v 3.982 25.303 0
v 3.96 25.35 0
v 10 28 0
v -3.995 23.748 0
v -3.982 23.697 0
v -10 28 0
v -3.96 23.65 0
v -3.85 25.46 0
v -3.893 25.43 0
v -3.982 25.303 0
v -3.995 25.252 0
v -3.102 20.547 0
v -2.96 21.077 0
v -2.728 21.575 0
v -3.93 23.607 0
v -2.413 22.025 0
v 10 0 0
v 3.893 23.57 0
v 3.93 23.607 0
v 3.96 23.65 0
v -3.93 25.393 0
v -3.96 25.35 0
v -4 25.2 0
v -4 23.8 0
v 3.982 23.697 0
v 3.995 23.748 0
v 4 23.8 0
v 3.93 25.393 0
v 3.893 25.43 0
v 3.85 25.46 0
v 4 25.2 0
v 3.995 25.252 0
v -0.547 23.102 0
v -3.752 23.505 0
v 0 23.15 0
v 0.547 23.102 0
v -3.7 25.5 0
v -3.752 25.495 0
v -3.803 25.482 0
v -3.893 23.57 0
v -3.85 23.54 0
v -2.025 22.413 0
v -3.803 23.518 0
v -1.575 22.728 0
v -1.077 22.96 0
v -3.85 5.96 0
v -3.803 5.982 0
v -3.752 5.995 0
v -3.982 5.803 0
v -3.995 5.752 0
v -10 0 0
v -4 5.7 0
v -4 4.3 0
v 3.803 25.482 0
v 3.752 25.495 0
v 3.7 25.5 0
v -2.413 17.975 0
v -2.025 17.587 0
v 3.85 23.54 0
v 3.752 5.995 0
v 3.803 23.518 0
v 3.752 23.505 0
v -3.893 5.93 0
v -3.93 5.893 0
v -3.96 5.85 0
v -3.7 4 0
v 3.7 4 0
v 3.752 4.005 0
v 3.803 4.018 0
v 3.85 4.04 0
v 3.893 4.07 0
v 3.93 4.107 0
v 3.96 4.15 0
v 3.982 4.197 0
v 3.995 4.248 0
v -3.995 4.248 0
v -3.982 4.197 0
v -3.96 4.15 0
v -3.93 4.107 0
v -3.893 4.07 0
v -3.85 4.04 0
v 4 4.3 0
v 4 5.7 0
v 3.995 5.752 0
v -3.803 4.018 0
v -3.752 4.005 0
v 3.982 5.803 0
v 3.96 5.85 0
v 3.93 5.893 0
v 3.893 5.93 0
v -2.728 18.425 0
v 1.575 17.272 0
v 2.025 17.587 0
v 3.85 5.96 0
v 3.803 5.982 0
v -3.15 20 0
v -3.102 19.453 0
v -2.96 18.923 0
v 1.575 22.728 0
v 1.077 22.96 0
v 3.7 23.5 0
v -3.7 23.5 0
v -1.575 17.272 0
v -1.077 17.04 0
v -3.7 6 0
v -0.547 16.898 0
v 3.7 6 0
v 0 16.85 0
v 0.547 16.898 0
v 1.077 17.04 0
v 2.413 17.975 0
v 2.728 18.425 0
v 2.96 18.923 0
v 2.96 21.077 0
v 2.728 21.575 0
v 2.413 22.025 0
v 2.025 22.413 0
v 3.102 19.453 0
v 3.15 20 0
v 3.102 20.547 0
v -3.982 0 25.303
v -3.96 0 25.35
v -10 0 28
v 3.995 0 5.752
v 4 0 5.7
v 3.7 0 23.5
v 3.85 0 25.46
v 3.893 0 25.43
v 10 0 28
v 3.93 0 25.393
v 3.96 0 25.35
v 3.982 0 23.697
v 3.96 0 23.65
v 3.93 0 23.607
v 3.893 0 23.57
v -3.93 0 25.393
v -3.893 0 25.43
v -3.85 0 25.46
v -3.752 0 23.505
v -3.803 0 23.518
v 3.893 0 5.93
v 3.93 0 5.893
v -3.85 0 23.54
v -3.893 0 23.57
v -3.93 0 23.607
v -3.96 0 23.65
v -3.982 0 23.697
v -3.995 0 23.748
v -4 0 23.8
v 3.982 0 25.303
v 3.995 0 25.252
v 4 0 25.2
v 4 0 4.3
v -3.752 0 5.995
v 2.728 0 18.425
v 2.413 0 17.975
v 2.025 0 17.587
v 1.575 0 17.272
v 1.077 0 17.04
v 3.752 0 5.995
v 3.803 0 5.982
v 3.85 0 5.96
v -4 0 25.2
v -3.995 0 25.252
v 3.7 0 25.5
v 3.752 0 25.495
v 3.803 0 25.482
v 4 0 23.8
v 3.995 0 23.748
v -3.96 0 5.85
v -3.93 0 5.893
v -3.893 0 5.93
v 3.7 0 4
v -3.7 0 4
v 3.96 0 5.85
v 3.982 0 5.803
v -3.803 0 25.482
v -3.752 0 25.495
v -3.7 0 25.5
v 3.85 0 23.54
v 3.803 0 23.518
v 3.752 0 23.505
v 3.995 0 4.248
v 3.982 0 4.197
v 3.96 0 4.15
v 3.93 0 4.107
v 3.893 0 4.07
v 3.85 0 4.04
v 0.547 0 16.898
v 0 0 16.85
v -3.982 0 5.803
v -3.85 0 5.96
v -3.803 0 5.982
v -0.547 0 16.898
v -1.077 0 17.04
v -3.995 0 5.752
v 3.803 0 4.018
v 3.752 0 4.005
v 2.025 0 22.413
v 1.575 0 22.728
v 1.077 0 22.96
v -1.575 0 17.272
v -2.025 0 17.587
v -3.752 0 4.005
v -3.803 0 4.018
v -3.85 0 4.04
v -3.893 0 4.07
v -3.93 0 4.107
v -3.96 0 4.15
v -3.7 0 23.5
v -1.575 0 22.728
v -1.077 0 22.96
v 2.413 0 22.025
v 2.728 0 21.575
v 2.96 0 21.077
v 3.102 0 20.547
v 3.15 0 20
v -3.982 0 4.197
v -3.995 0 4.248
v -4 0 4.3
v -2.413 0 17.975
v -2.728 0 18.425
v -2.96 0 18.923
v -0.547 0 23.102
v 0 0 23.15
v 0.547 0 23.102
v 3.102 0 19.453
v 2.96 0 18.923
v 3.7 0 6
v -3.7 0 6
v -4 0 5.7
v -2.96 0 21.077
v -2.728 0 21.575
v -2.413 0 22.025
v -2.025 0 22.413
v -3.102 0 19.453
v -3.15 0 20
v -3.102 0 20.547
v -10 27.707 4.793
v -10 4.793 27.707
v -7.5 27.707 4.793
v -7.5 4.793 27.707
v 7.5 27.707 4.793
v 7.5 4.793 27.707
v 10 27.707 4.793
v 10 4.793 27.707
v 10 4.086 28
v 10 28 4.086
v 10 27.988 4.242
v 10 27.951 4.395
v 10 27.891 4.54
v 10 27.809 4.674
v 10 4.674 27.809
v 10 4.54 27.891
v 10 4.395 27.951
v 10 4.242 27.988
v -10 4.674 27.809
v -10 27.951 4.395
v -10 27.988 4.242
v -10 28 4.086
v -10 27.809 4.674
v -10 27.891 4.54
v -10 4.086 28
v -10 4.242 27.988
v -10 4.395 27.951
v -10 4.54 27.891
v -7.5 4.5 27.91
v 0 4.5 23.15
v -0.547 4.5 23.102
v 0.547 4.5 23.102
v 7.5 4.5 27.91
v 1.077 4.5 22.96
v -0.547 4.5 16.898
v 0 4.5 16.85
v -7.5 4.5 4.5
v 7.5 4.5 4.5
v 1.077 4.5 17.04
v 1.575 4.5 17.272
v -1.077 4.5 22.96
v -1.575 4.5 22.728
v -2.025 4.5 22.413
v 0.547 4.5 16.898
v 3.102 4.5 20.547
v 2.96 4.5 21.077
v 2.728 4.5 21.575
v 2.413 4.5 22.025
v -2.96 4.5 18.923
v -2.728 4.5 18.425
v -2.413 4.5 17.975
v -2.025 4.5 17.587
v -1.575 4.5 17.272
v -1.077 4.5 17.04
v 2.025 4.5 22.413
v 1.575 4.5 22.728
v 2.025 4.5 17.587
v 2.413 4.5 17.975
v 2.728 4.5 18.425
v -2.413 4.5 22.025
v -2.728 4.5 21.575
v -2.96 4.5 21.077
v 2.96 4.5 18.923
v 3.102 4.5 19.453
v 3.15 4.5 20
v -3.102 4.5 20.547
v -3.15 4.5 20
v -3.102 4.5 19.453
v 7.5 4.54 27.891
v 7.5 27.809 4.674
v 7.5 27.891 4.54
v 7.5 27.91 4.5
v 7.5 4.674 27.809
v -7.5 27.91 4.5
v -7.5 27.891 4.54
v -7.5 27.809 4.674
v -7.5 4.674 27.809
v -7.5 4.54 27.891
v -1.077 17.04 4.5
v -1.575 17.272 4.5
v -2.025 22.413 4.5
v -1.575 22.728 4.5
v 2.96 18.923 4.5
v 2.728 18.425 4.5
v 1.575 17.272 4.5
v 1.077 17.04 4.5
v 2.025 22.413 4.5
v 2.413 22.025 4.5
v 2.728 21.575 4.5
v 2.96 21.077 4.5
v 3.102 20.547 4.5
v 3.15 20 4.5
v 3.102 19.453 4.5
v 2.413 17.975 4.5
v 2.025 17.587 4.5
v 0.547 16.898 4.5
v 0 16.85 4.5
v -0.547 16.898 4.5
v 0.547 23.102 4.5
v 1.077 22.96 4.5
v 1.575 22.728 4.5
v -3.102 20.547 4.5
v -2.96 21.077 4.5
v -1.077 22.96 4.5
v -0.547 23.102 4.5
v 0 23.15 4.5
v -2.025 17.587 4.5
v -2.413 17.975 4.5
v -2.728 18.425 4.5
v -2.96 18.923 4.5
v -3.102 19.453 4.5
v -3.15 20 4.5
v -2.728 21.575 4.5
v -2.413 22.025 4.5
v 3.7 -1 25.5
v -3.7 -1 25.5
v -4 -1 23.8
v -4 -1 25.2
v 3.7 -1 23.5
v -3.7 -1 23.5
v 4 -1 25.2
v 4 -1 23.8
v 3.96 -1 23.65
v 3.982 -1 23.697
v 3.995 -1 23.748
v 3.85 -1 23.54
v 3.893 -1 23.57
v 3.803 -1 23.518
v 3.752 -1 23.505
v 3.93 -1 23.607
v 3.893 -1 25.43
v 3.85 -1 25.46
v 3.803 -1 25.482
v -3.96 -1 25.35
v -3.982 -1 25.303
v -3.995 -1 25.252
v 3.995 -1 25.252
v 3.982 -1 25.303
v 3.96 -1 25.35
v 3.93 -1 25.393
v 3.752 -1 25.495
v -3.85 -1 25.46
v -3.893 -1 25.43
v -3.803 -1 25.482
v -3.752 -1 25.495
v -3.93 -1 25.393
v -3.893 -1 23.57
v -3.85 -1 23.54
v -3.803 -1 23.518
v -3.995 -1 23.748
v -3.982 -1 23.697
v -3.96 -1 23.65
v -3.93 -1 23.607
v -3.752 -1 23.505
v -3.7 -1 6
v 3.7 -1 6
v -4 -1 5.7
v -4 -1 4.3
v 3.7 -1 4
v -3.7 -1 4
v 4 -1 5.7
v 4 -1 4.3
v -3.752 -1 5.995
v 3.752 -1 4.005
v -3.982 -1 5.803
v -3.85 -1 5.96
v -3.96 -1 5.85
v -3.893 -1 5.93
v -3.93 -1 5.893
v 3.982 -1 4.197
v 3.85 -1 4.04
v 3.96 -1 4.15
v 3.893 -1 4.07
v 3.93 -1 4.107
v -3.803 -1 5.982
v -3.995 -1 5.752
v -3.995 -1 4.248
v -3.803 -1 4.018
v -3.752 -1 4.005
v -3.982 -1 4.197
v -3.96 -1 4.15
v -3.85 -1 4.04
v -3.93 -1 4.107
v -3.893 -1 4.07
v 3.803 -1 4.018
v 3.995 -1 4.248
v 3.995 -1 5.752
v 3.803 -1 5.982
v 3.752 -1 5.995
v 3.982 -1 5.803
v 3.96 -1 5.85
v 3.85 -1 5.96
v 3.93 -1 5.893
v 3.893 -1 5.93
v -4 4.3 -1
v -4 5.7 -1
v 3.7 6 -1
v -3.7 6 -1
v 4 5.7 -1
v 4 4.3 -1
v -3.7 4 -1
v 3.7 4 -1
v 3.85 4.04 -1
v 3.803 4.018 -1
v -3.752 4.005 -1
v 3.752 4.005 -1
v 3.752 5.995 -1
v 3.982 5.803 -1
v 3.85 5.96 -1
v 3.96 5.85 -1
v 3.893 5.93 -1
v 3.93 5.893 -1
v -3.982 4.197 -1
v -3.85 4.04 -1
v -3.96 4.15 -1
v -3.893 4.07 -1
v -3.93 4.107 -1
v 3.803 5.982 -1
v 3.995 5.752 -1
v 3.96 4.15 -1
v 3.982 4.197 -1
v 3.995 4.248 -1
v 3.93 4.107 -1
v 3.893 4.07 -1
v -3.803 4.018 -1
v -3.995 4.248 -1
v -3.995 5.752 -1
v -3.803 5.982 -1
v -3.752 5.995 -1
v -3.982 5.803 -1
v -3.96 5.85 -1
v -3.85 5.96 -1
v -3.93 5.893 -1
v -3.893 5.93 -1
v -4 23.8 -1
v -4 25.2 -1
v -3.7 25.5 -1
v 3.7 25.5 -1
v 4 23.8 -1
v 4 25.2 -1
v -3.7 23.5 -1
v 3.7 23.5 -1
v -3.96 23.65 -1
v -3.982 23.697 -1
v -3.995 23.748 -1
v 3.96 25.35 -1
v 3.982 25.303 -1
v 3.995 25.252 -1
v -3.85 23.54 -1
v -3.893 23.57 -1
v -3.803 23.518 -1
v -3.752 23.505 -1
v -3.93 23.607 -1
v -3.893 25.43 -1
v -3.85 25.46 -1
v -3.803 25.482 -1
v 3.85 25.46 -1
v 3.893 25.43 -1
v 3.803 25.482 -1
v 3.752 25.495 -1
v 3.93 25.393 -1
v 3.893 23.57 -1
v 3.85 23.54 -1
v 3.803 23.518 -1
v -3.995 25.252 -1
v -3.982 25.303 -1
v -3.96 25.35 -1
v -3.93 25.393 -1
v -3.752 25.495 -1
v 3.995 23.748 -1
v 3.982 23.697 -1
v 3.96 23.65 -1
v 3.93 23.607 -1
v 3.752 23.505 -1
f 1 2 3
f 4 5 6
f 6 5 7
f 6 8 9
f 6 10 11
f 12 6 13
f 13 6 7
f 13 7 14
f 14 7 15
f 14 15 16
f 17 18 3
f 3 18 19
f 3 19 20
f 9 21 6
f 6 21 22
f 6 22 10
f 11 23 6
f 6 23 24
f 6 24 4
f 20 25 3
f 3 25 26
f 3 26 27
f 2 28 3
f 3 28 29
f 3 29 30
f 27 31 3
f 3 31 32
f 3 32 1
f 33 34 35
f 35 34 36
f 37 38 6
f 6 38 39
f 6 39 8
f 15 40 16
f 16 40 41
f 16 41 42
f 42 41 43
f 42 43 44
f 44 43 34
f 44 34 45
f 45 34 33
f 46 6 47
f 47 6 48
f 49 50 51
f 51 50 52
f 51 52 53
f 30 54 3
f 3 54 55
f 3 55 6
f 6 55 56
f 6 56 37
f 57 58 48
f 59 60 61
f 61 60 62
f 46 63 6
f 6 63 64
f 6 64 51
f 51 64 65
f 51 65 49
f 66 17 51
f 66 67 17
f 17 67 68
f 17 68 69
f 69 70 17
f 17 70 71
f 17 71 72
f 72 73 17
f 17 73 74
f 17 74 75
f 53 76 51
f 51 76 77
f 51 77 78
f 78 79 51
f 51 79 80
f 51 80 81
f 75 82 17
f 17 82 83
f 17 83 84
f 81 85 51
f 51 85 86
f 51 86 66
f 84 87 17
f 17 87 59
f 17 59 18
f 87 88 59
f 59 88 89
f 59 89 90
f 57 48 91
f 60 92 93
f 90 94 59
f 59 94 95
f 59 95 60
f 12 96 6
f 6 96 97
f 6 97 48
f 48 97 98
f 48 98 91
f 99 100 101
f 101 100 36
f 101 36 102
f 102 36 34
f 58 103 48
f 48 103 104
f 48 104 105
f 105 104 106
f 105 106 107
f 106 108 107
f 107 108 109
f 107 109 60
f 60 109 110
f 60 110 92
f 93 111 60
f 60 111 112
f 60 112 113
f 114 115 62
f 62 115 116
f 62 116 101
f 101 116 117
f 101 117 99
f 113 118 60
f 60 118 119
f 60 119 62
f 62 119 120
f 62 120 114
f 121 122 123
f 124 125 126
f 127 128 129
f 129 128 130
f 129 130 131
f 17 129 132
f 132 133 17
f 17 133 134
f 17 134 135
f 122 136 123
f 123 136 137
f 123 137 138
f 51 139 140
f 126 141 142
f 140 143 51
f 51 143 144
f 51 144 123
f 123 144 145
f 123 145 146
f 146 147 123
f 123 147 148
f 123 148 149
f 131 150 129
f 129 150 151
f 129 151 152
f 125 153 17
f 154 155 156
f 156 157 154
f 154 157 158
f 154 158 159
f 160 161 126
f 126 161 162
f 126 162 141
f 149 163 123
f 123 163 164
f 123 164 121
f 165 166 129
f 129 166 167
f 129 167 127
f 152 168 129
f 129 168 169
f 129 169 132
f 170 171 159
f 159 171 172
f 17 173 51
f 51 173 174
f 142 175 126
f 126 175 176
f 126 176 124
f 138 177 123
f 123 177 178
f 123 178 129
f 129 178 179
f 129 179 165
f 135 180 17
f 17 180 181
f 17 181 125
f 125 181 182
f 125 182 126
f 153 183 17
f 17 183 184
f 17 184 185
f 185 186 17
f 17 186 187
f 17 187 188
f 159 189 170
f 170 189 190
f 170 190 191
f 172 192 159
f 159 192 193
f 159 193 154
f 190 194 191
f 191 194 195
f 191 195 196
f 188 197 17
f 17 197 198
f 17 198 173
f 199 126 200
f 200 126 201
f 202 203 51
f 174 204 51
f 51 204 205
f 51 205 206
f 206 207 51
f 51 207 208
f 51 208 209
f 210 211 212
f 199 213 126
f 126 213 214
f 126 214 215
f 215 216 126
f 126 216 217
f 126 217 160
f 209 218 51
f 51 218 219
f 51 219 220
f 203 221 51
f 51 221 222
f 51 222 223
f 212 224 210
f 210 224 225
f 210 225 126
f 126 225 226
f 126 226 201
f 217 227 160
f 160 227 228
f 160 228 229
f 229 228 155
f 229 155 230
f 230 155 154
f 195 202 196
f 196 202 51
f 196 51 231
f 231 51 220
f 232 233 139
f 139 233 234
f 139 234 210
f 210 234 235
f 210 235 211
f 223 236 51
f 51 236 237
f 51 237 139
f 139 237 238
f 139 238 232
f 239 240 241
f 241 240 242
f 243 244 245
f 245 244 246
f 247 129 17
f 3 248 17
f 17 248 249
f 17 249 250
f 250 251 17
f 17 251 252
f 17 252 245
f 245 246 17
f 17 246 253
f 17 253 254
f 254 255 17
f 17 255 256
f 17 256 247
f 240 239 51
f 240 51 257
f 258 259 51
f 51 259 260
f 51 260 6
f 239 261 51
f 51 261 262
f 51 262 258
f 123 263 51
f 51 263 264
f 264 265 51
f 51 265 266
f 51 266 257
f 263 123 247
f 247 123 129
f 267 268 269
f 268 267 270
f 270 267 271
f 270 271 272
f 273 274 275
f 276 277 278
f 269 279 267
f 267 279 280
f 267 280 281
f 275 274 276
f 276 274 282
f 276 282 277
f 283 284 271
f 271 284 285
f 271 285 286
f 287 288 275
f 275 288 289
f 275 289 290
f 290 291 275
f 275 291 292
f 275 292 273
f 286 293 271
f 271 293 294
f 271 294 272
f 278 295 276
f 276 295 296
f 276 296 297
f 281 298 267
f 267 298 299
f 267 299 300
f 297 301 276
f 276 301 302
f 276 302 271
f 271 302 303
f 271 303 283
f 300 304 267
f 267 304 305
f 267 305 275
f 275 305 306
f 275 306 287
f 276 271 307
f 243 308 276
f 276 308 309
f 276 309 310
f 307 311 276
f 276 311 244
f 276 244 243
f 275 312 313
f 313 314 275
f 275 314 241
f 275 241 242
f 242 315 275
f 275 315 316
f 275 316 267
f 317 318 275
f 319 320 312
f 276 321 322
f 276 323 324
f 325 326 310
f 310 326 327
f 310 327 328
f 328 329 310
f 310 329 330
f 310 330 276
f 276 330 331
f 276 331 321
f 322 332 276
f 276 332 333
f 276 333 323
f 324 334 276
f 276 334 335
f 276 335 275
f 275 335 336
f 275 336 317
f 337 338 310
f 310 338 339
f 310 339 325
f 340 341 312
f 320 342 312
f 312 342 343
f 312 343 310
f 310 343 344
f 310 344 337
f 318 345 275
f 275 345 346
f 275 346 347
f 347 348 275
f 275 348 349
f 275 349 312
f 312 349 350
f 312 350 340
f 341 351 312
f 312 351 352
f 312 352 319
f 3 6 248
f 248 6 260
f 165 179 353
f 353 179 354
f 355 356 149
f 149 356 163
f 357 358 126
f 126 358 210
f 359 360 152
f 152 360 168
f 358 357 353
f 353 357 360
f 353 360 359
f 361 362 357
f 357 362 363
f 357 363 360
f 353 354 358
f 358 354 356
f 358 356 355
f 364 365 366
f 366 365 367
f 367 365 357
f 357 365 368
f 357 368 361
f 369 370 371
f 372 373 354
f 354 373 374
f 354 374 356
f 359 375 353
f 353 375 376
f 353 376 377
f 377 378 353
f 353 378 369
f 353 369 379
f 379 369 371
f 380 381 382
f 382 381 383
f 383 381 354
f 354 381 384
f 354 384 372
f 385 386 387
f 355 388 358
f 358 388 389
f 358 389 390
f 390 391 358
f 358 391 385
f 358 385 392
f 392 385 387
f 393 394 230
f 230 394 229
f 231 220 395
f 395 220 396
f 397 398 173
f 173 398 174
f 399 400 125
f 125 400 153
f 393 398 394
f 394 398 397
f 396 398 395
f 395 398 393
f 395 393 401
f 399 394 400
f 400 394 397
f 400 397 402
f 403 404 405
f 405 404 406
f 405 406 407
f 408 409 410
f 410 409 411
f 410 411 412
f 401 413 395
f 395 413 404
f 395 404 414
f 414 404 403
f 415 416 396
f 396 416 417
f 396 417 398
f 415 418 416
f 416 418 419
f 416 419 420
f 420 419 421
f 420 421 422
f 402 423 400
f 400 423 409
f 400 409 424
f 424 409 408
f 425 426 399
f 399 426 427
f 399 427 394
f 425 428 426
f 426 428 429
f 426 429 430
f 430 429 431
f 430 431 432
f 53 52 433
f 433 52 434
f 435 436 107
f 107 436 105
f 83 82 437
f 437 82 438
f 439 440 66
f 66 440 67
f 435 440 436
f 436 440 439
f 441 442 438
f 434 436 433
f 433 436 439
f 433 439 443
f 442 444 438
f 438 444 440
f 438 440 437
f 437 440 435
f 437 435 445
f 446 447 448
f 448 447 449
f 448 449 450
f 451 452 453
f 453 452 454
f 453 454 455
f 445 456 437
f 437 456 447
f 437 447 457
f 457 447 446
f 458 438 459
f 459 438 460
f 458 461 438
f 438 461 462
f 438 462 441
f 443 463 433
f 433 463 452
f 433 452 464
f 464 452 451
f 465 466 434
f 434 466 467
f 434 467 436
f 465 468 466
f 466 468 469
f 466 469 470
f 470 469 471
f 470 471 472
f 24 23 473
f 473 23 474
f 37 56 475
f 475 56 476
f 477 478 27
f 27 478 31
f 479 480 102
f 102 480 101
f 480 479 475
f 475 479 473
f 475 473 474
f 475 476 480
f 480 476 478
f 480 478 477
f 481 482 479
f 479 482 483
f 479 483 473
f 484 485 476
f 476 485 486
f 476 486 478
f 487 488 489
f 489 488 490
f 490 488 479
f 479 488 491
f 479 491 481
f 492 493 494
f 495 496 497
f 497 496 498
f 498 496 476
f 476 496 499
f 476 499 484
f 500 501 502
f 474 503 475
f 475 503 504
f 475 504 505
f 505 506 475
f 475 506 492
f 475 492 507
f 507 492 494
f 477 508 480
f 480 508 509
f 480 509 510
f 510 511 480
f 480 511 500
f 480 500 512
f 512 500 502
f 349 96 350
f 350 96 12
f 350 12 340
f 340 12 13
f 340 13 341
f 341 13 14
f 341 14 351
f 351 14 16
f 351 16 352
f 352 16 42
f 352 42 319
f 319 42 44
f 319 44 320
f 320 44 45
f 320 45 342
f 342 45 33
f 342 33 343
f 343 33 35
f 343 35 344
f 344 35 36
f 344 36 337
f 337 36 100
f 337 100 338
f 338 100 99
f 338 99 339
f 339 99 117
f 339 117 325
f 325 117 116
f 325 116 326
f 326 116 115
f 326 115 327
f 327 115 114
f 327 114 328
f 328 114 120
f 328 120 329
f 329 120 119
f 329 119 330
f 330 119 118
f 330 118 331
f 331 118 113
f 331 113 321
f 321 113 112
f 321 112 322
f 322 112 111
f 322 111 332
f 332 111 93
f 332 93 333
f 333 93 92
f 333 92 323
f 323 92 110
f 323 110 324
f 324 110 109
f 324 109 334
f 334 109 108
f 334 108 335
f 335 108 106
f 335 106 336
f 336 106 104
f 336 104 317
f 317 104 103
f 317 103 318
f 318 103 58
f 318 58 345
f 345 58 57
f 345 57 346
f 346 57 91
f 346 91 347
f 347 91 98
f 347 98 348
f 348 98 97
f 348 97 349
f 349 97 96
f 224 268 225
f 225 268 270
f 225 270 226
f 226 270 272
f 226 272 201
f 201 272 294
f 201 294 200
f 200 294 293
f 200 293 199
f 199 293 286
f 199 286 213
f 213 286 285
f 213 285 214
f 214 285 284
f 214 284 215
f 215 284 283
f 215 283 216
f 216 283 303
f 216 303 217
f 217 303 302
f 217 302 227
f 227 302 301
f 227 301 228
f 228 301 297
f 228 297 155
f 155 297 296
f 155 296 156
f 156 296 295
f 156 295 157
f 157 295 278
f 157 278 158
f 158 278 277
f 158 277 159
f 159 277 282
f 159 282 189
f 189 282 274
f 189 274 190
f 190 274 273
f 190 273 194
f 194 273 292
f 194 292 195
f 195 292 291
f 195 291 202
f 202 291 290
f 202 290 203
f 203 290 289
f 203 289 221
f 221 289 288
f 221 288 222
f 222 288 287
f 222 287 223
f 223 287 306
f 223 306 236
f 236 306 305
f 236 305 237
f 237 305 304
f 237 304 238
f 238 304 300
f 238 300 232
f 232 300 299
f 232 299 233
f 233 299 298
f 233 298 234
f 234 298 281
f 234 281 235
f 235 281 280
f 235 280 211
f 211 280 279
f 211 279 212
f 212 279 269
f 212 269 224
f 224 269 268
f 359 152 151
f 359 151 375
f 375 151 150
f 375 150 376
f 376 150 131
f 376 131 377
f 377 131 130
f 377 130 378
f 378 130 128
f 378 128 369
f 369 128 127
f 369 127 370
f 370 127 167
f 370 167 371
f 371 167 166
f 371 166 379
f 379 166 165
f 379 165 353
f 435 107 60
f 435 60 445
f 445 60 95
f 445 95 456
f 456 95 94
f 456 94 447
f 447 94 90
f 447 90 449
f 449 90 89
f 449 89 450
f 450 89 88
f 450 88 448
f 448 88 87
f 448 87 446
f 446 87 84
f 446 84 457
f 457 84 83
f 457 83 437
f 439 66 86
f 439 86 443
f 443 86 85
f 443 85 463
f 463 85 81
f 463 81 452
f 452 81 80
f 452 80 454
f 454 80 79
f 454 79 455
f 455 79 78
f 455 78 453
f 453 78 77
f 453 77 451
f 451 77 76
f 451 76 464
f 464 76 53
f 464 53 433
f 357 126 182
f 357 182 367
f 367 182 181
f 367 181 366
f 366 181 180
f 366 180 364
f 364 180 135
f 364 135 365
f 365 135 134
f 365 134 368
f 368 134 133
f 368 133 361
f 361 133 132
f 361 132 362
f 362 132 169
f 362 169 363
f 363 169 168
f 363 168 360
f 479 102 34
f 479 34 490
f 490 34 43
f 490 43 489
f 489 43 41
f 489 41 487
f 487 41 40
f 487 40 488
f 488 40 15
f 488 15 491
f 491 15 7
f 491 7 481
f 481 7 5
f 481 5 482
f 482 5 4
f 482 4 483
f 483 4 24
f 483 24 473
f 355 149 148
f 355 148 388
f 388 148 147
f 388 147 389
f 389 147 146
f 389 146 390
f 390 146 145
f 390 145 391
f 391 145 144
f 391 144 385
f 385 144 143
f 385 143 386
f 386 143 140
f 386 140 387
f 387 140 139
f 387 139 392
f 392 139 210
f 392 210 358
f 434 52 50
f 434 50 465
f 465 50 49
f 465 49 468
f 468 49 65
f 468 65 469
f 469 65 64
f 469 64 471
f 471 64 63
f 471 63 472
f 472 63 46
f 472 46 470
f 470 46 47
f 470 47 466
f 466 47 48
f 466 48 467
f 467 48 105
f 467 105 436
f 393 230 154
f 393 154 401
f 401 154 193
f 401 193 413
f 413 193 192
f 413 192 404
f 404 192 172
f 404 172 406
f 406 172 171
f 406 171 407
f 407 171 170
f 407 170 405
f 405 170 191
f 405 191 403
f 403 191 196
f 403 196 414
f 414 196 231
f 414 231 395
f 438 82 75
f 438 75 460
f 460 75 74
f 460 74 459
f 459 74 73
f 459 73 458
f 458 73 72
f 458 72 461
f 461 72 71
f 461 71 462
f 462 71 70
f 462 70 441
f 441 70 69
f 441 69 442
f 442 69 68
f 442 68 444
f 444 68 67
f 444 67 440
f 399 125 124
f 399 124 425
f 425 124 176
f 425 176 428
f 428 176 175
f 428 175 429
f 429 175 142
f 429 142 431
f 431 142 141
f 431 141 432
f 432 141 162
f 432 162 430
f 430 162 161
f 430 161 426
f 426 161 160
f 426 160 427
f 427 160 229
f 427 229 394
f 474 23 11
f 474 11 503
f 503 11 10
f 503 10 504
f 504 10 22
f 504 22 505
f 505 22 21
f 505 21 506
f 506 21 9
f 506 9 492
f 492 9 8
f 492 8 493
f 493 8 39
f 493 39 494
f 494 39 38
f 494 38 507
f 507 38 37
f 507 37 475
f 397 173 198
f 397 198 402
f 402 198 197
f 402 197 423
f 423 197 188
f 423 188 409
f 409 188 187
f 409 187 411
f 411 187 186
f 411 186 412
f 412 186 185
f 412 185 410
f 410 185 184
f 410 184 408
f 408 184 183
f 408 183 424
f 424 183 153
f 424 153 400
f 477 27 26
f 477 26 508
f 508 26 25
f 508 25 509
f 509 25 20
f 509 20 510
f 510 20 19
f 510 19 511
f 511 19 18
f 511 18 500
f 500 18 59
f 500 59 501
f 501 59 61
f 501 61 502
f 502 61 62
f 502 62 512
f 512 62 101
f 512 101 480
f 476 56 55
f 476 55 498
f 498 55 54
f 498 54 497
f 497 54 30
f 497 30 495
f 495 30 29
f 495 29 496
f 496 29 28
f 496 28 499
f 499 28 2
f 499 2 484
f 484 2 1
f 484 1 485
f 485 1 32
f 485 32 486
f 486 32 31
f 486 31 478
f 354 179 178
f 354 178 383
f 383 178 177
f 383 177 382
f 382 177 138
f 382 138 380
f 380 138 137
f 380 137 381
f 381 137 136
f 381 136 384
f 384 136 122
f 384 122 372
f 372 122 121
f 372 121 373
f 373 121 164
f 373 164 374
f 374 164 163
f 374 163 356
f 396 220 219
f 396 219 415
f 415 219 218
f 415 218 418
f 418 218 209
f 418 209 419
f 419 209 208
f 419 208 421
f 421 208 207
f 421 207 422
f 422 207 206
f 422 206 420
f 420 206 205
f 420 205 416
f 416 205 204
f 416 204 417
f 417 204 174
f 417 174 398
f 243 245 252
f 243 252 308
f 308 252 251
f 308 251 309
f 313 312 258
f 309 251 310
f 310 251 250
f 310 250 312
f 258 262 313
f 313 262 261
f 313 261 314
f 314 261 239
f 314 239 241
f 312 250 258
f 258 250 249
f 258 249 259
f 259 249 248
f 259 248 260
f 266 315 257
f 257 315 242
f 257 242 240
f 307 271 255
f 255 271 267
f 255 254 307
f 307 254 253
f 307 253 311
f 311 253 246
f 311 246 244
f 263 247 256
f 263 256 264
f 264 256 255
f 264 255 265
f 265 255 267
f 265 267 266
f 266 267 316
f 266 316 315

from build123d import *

# Parameters (mm, degrees)
BOSS_EXTRUDE1_DEPTH            = 20
SKETCH2_W                      = 20
SKETCH2_H                      = 23.5
BOSS_EXTRUDE2_DEPTH            = 4.5
CUT_EXTRUDE1_DEPTH             = 15
SKETCH4_W                      = 20
SKETCH4_H                      = 28
BOSS_EXTRUDE3_DEPTH            = 4.5
SKETCH5_W                      = 8
SKETCH5_H                      = 2
BOSS_EXTRUDE4_DEPTH            = 1
SKETCH6_W                      = 8
SKETCH6_H                      = 2
BOSS_EXTRUDE5_DEPTH            = 1
SKETCH7_W                      = 8
SKETCH7_H                      = 2
BOSS_EXTRUDE6_DEPTH            = 1
SKETCH8_W                      = 8
SKETCH8_H                      = 2
BOSS_EXTRUDE7_DEPTH            = 1
F_6_3_6_3_DIAMETER_HOLE1_D     = 6.3
F_6_3_6_3_DIAMETER_HOLE1_DEPTH = 28
F_6_3_6_3_DIAMETER_HOLE2_D     = 6.3
F_6_3_6_3_DIAMETER_HOLE2_DEPTH = 5.5
FILLET1_R                      = 0.3
FILLET2_START                  = -11
FILLET2_DEPTH                  = 22


with BuildPart() as part:
    # Sketch1 → Boss-Extrude1 (new body)
    with BuildSketch(Plane(origin=(-10, 0, 0), x_dir=(0, -1, 0), z_dir=(-1, 0, 0))):
        with BuildLine():
            Line((-28, 4.5), (-4.5, 4.5))
            Line((-4.5, 4.5), (-4.5, 28))
            Line((-4.5, 28), (-4.792893219, 27.707106781))
            add(Edge.make_bspline(
                [(-4.792893219, 27.707106781), (-12.430964406, 20.069035594), (-20.069035594, 12.430964406), (-27.707106781, 4.792893219)],
                knots=[0, 0, 0, 0, 1, 1, 1, 1], degree=3))
            Line((-27.707106781, 4.792893219), (-28, 4.5))
        make_face()
    extrude(amount=-BOSS_EXTRUDE1_DEPTH)

    # Sketch2 → Boss-Extrude2 (add)
    with BuildSketch(Plane.XZ.offset(-4.5)):
        with Locations((0, 16.25)):
            Rectangle(SKETCH2_W, SKETCH2_H)
    extrude(amount=BOSS_EXTRUDE2_DEPTH)

    # Sketch3 → Cut-Extrude1 (cut)
    with BuildSketch(Plane(origin=(-7.5, 0, 0), x_dir=(0, -1, 0), z_dir=(-1, 0, 0))):
        with BuildLine():
            Line((-4.5, 4.5), (-4.5, 28))
            Line((-4.5, 28), (-4.792893219, 27.707106781))
            add(Edge.make_bspline(
                [(-4.792893219, 27.707106781), (-12.430964406, 20.069035594), (-20.069035594, 12.430964406), (-27.707106781, 4.792893219)],
                knots=[0, 0, 0, 0, 1, 1, 1, 1], degree=3))
            Line((-27.707106781, 4.792893219), (-28, 4.5))
            Line((-28, 4.5), (-4.5, 4.5))
        make_face()
    extrude(amount=-CUT_EXTRUDE1_DEPTH, mode=Mode.SUBTRACT)

    # Sketch4 → Boss-Extrude3 (add)
    with BuildSketch(Plane(origin=(0, 0, 4.5), x_dir=(-1, 0, 0), z_dir=(0, 0, -1))):
        with Locations((0, 14)):
            Rectangle(SKETCH4_W, SKETCH4_H)
    extrude(amount=BOSS_EXTRUDE3_DEPTH)

    # Sketch5 → Boss-Extrude4 (add)
    with BuildSketch(Plane.XZ):
        with Locations((0, 24.5)):
            Rectangle(SKETCH5_W, SKETCH5_H)
    extrude(amount=BOSS_EXTRUDE4_DEPTH)

    # Sketch6 → Boss-Extrude5 (add)
    with BuildSketch(Plane.XZ):
        with Locations((0, 5)):
            Rectangle(SKETCH6_W, SKETCH6_H)
    extrude(amount=BOSS_EXTRUDE5_DEPTH)

    # Sketch7 → Boss-Extrude6 (add)
    with BuildSketch(Plane(origin=(0, 0, 0), x_dir=(-1, 0, 0), z_dir=(0, 0, -1))):
        with Locations((0, 5)):
            Rectangle(SKETCH7_W, SKETCH7_H)
    extrude(amount=BOSS_EXTRUDE6_DEPTH)

    # Sketch8 → Boss-Extrude7 (add)
    with BuildSketch(Plane(origin=(0, 0, 0), x_dir=(-1, 0, 0), z_dir=(0, 0, -1))):
        with Locations((0, 24.5)):
            Rectangle(SKETCH8_W, SKETCH8_H)
    extrude(amount=BOSS_EXTRUDE7_DEPTH)

    # Ø6.3 (6.3) Diameter Hole1
    with Locations(Plane(origin=(0, 0, 0), x_dir=(-1, 0, 0), z_dir=(0, 0, -1))):
        with Locations((0, 20)):
            Hole(F_6_3_6_3_DIAMETER_HOLE1_D / 2, depth=F_6_3_6_3_DIAMETER_HOLE1_DEPTH)

    # Ø6.3 (6.3) Diameter Hole2
    with Locations(Plane(origin=(0, 4.5, 0), x_dir=(1, 0, 0), z_dir=(0, 1, 0))):
        with Locations((0, -20)):
            Hole(F_6_3_6_3_DIAMETER_HOLE2_D / 2, depth=F_6_3_6_3_DIAMETER_HOLE2_DEPTH)

    # Fillet1
    fillet1_edges = [part.edges().sort_by_distance(p)[0] for p in [
        (-4, 23.5, -0.5),
        (-4, 25.5, -0.5),
        (4, 25.5, -0.5),
        (4, 23.5, -0.5),
        (4, -0.5, 25.5),
        (-4, -0.5, 25.5),
        (-4, -0.5, 23.5),
        (4, -0.5, 23.5),
        (4, -0.5, 6),
        (-4, -0.5, 6),
        (-4, -0.5, 4),
        (4, -0.5, 4),
        (-4, 4, -0.5),
        (-4, 6, -0.5),
        (4, 6, -0.5),
        (4, 4, -0.5),
    ]]
    fillet(fillet1_edges, radius=FILLET1_R)

    # Fillet2: read off the stored shape, not the designer's step
    # Fillet2 outline → Fillet2 (cut)
    with BuildSketch(Plane.YZ.offset(FILLET2_START)):
        with BuildLine():
            Line((28, 4.085786438), (28, 4.5))
            Line((28, 4.5), (27.707106781, 4.792893219))
            ThreePointArc((27.707106781, 4.792893219), (27.923879533, 4.46846987), (28, 4.085786438))
        make_face()
        with BuildLine():
            Line((4.792893219, 27.707106781), (4.5, 28))
            Line((4.5, 28), (4.085786438, 28))
            ThreePointArc((4.085786438, 28), (4.46846987, 27.923879533), (4.792893219, 27.707106781))
        make_face()
    extrude(amount=FILLET2_DEPTH, mode=Mode.SUBTRACT)


solid = part.part
